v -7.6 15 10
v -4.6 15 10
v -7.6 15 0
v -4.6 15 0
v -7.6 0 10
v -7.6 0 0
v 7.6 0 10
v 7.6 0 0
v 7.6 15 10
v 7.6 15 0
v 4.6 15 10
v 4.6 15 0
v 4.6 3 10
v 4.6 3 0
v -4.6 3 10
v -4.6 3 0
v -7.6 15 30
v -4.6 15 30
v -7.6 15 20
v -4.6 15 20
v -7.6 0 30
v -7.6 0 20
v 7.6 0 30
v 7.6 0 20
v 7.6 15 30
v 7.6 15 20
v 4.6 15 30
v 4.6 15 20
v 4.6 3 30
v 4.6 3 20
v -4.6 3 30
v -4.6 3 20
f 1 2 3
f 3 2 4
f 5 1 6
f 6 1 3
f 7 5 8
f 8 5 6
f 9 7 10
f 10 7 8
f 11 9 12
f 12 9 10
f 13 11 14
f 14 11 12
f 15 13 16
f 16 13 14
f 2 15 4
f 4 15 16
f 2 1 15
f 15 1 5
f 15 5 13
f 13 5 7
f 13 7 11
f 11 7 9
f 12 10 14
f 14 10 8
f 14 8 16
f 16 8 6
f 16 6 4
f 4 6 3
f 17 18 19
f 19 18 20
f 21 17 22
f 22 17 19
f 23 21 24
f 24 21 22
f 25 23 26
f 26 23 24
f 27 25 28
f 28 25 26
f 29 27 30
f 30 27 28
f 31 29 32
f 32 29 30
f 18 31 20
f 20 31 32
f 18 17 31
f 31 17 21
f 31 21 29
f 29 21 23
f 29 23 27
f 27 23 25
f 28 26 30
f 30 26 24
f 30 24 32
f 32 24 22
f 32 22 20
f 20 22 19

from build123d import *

# Parameters (mm, degrees)
BOSS_EXTRUDE1_DEPTH = 10
LPATTERN3_COUNT     = 2
LPATTERN3_PITCH     = 20


with BuildPart() as part:
    # Sketch1 → Boss-Extrude1 (new body)
    with BuildSketch(Plane.XY):
        Polygon((-4.6, 15), (-4.6, 3), (4.6, 3), (4.6, 15), (7.6, 15), (7.6, 0), (-7.6, 0), (-7.6, 15), align=None)
    extrude(amount=BOSS_EXTRUDE1_DEPTH)


with BuildPart() as lpattern3_1:
    # LPattern3: pattern copy
    add(part.part.moved(Location(Vector(0, 0, 1) * (1 * LPATTERN3_PITCH))))


solid = Compound([part.part, lpattern3_1.part])
